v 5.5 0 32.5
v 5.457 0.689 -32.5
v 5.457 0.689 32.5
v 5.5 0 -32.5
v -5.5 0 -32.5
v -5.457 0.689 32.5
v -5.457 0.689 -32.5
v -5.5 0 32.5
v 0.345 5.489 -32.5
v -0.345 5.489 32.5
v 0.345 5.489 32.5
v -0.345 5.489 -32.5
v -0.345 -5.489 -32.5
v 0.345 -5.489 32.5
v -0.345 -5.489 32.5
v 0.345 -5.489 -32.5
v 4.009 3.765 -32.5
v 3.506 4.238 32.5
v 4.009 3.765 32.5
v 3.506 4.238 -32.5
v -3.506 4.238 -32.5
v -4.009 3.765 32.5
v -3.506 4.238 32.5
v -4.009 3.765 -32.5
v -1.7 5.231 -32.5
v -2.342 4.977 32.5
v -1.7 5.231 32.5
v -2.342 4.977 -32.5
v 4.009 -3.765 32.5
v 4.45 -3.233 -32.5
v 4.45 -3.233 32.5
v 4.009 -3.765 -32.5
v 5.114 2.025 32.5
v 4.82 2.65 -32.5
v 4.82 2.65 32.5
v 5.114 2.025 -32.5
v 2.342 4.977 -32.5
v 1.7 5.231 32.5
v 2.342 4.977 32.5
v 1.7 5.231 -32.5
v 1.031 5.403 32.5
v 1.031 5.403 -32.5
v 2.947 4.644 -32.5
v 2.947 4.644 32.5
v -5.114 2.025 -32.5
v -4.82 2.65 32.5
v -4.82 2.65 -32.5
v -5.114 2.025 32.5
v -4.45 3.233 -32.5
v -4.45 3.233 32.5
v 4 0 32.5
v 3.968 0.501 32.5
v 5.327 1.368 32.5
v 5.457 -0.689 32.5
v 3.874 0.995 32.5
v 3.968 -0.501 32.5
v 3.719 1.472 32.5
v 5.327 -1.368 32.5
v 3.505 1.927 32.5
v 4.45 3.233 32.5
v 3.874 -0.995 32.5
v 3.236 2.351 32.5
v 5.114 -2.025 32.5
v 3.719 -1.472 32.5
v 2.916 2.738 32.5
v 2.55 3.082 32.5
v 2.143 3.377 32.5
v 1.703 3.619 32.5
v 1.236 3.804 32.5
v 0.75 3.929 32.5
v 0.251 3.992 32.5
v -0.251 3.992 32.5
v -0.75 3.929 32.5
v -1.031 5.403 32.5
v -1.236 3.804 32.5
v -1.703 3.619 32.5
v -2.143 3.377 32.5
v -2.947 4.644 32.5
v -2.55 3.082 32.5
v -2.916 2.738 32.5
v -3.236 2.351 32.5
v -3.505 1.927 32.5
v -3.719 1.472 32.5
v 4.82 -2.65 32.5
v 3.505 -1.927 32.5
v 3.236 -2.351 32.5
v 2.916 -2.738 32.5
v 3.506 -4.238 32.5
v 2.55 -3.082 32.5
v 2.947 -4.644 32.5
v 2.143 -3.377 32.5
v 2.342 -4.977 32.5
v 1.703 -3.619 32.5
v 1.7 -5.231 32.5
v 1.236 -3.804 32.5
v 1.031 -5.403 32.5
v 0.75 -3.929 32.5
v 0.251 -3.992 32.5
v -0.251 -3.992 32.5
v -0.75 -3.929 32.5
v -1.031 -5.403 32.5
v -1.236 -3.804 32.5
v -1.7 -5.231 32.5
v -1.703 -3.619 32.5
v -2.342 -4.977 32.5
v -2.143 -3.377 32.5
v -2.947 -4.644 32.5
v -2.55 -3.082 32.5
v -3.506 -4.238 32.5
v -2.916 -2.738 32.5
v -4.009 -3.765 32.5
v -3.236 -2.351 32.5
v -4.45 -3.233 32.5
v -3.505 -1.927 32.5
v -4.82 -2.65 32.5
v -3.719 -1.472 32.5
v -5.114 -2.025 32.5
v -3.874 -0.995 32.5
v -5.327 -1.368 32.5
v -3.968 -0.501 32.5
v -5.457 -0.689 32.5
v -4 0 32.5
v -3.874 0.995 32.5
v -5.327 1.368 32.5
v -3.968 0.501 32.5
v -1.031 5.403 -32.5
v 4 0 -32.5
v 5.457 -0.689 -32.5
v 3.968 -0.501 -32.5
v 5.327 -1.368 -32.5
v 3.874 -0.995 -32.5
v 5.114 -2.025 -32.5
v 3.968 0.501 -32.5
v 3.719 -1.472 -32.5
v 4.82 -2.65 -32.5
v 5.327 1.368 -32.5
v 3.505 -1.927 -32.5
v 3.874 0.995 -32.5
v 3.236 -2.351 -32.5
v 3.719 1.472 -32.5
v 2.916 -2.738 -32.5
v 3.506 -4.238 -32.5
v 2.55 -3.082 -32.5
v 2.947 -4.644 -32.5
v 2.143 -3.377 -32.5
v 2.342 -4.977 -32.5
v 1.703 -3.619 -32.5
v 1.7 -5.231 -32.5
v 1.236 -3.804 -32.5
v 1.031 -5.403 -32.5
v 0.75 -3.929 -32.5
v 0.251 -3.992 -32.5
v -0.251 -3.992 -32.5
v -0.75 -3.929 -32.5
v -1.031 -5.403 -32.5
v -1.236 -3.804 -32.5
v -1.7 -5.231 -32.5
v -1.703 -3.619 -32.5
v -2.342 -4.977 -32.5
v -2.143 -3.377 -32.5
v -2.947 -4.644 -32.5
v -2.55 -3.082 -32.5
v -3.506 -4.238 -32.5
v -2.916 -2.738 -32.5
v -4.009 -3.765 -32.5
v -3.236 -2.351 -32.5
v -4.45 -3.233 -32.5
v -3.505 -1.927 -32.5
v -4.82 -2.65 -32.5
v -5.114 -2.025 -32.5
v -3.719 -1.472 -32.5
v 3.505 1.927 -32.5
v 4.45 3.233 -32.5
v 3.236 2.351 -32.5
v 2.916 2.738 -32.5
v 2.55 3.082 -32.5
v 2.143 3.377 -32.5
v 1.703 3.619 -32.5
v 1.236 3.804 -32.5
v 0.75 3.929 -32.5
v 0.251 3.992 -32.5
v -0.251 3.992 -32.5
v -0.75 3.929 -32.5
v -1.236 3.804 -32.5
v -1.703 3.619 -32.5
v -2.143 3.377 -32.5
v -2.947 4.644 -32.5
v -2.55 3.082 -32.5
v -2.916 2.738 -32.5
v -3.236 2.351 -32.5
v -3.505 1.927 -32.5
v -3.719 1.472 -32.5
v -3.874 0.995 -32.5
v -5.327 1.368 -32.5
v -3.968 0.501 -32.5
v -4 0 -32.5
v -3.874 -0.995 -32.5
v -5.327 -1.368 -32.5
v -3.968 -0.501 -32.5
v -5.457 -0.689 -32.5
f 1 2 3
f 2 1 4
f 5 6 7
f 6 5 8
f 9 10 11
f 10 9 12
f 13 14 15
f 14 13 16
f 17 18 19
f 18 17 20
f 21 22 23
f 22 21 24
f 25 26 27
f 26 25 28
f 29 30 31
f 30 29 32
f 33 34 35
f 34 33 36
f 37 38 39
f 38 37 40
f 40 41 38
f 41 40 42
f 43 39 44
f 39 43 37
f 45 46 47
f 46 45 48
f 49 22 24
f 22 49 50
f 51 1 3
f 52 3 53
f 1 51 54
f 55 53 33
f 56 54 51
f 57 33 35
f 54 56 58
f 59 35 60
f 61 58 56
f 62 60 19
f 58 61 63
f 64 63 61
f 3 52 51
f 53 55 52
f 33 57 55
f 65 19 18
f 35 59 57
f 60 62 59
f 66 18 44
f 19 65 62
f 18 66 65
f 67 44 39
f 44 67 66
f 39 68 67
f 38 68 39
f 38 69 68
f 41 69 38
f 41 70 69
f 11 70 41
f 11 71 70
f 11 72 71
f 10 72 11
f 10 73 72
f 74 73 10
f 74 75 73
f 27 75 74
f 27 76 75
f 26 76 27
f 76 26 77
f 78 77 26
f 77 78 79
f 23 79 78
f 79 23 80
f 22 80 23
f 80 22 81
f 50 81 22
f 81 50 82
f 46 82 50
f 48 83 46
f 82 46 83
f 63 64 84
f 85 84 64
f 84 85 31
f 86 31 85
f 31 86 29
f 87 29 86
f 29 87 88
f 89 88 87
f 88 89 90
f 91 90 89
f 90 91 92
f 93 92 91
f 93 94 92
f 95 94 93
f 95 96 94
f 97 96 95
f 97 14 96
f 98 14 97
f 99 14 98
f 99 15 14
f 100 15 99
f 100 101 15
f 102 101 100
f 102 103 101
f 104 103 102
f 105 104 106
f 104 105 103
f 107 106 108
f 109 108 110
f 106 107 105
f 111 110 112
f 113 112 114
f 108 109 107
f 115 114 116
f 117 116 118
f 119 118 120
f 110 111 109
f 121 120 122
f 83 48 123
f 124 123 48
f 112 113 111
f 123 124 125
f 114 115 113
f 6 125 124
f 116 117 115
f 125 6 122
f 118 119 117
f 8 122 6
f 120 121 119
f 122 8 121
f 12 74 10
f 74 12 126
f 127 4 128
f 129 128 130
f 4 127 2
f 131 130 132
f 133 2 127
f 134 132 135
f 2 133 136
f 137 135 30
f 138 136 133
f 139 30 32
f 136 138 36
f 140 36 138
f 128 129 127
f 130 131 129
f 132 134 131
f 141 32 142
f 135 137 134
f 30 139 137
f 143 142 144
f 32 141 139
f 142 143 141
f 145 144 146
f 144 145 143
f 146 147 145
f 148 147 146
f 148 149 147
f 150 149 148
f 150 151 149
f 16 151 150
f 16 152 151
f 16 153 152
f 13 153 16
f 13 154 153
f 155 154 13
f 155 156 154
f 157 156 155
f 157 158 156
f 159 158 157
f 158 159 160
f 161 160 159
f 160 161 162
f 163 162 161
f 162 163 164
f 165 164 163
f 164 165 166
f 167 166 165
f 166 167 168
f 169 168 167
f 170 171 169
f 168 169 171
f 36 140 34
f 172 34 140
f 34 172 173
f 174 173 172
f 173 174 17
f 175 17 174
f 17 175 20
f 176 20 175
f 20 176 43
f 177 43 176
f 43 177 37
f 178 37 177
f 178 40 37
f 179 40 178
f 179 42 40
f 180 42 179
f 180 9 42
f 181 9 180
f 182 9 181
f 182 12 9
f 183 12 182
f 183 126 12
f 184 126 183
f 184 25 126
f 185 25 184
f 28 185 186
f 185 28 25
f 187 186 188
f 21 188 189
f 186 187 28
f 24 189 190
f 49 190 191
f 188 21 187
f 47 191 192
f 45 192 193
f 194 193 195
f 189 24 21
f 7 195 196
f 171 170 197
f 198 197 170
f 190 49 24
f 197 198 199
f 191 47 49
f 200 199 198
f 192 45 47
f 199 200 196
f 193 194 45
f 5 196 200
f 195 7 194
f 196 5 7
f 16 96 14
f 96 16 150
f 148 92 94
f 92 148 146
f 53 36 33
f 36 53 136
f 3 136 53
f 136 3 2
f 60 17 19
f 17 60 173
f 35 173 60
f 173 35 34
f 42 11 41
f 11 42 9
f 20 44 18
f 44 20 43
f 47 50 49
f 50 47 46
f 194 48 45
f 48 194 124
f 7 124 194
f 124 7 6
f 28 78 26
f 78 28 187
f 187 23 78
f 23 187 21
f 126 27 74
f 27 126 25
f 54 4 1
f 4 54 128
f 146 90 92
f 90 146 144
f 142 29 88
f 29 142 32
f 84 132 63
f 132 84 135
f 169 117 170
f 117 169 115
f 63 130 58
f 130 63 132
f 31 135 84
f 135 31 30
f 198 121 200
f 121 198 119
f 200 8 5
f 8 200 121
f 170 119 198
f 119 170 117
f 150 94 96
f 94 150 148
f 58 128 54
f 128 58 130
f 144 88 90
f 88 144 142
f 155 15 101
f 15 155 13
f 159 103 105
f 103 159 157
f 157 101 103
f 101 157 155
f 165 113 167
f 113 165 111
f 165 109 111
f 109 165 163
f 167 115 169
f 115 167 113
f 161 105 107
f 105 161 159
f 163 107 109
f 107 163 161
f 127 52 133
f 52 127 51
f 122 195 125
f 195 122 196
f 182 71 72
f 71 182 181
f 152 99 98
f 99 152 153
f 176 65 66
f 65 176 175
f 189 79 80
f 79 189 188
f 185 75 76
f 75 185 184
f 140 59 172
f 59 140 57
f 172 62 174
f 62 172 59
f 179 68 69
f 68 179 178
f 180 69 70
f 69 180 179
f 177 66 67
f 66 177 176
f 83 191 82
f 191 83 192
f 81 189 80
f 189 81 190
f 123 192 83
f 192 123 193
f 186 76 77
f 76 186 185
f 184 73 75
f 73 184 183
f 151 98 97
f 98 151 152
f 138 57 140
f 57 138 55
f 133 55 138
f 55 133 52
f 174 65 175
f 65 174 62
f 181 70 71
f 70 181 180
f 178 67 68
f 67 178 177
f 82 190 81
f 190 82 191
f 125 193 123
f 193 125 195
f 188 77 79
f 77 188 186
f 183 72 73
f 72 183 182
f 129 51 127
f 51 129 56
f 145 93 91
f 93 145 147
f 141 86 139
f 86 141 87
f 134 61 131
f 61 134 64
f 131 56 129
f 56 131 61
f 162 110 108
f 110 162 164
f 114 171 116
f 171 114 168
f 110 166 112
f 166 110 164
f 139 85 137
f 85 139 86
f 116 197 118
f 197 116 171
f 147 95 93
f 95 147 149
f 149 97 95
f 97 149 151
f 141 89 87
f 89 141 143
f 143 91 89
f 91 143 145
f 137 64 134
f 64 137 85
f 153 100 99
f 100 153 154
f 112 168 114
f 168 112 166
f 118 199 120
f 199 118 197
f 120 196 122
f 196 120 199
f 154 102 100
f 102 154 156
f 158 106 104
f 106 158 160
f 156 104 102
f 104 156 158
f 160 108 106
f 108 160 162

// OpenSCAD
$fn = 50;


difference() {
	union() {
		translate(v = [0, 0, -32.5000000000]) {
			cylinder(h = 65, r = 5.5000000000);
		}
	}
	union() {
		translate(v = [0, 0, -100.0000000000]) {
			cylinder(h = 200, r = 4);
		}
	}
}
